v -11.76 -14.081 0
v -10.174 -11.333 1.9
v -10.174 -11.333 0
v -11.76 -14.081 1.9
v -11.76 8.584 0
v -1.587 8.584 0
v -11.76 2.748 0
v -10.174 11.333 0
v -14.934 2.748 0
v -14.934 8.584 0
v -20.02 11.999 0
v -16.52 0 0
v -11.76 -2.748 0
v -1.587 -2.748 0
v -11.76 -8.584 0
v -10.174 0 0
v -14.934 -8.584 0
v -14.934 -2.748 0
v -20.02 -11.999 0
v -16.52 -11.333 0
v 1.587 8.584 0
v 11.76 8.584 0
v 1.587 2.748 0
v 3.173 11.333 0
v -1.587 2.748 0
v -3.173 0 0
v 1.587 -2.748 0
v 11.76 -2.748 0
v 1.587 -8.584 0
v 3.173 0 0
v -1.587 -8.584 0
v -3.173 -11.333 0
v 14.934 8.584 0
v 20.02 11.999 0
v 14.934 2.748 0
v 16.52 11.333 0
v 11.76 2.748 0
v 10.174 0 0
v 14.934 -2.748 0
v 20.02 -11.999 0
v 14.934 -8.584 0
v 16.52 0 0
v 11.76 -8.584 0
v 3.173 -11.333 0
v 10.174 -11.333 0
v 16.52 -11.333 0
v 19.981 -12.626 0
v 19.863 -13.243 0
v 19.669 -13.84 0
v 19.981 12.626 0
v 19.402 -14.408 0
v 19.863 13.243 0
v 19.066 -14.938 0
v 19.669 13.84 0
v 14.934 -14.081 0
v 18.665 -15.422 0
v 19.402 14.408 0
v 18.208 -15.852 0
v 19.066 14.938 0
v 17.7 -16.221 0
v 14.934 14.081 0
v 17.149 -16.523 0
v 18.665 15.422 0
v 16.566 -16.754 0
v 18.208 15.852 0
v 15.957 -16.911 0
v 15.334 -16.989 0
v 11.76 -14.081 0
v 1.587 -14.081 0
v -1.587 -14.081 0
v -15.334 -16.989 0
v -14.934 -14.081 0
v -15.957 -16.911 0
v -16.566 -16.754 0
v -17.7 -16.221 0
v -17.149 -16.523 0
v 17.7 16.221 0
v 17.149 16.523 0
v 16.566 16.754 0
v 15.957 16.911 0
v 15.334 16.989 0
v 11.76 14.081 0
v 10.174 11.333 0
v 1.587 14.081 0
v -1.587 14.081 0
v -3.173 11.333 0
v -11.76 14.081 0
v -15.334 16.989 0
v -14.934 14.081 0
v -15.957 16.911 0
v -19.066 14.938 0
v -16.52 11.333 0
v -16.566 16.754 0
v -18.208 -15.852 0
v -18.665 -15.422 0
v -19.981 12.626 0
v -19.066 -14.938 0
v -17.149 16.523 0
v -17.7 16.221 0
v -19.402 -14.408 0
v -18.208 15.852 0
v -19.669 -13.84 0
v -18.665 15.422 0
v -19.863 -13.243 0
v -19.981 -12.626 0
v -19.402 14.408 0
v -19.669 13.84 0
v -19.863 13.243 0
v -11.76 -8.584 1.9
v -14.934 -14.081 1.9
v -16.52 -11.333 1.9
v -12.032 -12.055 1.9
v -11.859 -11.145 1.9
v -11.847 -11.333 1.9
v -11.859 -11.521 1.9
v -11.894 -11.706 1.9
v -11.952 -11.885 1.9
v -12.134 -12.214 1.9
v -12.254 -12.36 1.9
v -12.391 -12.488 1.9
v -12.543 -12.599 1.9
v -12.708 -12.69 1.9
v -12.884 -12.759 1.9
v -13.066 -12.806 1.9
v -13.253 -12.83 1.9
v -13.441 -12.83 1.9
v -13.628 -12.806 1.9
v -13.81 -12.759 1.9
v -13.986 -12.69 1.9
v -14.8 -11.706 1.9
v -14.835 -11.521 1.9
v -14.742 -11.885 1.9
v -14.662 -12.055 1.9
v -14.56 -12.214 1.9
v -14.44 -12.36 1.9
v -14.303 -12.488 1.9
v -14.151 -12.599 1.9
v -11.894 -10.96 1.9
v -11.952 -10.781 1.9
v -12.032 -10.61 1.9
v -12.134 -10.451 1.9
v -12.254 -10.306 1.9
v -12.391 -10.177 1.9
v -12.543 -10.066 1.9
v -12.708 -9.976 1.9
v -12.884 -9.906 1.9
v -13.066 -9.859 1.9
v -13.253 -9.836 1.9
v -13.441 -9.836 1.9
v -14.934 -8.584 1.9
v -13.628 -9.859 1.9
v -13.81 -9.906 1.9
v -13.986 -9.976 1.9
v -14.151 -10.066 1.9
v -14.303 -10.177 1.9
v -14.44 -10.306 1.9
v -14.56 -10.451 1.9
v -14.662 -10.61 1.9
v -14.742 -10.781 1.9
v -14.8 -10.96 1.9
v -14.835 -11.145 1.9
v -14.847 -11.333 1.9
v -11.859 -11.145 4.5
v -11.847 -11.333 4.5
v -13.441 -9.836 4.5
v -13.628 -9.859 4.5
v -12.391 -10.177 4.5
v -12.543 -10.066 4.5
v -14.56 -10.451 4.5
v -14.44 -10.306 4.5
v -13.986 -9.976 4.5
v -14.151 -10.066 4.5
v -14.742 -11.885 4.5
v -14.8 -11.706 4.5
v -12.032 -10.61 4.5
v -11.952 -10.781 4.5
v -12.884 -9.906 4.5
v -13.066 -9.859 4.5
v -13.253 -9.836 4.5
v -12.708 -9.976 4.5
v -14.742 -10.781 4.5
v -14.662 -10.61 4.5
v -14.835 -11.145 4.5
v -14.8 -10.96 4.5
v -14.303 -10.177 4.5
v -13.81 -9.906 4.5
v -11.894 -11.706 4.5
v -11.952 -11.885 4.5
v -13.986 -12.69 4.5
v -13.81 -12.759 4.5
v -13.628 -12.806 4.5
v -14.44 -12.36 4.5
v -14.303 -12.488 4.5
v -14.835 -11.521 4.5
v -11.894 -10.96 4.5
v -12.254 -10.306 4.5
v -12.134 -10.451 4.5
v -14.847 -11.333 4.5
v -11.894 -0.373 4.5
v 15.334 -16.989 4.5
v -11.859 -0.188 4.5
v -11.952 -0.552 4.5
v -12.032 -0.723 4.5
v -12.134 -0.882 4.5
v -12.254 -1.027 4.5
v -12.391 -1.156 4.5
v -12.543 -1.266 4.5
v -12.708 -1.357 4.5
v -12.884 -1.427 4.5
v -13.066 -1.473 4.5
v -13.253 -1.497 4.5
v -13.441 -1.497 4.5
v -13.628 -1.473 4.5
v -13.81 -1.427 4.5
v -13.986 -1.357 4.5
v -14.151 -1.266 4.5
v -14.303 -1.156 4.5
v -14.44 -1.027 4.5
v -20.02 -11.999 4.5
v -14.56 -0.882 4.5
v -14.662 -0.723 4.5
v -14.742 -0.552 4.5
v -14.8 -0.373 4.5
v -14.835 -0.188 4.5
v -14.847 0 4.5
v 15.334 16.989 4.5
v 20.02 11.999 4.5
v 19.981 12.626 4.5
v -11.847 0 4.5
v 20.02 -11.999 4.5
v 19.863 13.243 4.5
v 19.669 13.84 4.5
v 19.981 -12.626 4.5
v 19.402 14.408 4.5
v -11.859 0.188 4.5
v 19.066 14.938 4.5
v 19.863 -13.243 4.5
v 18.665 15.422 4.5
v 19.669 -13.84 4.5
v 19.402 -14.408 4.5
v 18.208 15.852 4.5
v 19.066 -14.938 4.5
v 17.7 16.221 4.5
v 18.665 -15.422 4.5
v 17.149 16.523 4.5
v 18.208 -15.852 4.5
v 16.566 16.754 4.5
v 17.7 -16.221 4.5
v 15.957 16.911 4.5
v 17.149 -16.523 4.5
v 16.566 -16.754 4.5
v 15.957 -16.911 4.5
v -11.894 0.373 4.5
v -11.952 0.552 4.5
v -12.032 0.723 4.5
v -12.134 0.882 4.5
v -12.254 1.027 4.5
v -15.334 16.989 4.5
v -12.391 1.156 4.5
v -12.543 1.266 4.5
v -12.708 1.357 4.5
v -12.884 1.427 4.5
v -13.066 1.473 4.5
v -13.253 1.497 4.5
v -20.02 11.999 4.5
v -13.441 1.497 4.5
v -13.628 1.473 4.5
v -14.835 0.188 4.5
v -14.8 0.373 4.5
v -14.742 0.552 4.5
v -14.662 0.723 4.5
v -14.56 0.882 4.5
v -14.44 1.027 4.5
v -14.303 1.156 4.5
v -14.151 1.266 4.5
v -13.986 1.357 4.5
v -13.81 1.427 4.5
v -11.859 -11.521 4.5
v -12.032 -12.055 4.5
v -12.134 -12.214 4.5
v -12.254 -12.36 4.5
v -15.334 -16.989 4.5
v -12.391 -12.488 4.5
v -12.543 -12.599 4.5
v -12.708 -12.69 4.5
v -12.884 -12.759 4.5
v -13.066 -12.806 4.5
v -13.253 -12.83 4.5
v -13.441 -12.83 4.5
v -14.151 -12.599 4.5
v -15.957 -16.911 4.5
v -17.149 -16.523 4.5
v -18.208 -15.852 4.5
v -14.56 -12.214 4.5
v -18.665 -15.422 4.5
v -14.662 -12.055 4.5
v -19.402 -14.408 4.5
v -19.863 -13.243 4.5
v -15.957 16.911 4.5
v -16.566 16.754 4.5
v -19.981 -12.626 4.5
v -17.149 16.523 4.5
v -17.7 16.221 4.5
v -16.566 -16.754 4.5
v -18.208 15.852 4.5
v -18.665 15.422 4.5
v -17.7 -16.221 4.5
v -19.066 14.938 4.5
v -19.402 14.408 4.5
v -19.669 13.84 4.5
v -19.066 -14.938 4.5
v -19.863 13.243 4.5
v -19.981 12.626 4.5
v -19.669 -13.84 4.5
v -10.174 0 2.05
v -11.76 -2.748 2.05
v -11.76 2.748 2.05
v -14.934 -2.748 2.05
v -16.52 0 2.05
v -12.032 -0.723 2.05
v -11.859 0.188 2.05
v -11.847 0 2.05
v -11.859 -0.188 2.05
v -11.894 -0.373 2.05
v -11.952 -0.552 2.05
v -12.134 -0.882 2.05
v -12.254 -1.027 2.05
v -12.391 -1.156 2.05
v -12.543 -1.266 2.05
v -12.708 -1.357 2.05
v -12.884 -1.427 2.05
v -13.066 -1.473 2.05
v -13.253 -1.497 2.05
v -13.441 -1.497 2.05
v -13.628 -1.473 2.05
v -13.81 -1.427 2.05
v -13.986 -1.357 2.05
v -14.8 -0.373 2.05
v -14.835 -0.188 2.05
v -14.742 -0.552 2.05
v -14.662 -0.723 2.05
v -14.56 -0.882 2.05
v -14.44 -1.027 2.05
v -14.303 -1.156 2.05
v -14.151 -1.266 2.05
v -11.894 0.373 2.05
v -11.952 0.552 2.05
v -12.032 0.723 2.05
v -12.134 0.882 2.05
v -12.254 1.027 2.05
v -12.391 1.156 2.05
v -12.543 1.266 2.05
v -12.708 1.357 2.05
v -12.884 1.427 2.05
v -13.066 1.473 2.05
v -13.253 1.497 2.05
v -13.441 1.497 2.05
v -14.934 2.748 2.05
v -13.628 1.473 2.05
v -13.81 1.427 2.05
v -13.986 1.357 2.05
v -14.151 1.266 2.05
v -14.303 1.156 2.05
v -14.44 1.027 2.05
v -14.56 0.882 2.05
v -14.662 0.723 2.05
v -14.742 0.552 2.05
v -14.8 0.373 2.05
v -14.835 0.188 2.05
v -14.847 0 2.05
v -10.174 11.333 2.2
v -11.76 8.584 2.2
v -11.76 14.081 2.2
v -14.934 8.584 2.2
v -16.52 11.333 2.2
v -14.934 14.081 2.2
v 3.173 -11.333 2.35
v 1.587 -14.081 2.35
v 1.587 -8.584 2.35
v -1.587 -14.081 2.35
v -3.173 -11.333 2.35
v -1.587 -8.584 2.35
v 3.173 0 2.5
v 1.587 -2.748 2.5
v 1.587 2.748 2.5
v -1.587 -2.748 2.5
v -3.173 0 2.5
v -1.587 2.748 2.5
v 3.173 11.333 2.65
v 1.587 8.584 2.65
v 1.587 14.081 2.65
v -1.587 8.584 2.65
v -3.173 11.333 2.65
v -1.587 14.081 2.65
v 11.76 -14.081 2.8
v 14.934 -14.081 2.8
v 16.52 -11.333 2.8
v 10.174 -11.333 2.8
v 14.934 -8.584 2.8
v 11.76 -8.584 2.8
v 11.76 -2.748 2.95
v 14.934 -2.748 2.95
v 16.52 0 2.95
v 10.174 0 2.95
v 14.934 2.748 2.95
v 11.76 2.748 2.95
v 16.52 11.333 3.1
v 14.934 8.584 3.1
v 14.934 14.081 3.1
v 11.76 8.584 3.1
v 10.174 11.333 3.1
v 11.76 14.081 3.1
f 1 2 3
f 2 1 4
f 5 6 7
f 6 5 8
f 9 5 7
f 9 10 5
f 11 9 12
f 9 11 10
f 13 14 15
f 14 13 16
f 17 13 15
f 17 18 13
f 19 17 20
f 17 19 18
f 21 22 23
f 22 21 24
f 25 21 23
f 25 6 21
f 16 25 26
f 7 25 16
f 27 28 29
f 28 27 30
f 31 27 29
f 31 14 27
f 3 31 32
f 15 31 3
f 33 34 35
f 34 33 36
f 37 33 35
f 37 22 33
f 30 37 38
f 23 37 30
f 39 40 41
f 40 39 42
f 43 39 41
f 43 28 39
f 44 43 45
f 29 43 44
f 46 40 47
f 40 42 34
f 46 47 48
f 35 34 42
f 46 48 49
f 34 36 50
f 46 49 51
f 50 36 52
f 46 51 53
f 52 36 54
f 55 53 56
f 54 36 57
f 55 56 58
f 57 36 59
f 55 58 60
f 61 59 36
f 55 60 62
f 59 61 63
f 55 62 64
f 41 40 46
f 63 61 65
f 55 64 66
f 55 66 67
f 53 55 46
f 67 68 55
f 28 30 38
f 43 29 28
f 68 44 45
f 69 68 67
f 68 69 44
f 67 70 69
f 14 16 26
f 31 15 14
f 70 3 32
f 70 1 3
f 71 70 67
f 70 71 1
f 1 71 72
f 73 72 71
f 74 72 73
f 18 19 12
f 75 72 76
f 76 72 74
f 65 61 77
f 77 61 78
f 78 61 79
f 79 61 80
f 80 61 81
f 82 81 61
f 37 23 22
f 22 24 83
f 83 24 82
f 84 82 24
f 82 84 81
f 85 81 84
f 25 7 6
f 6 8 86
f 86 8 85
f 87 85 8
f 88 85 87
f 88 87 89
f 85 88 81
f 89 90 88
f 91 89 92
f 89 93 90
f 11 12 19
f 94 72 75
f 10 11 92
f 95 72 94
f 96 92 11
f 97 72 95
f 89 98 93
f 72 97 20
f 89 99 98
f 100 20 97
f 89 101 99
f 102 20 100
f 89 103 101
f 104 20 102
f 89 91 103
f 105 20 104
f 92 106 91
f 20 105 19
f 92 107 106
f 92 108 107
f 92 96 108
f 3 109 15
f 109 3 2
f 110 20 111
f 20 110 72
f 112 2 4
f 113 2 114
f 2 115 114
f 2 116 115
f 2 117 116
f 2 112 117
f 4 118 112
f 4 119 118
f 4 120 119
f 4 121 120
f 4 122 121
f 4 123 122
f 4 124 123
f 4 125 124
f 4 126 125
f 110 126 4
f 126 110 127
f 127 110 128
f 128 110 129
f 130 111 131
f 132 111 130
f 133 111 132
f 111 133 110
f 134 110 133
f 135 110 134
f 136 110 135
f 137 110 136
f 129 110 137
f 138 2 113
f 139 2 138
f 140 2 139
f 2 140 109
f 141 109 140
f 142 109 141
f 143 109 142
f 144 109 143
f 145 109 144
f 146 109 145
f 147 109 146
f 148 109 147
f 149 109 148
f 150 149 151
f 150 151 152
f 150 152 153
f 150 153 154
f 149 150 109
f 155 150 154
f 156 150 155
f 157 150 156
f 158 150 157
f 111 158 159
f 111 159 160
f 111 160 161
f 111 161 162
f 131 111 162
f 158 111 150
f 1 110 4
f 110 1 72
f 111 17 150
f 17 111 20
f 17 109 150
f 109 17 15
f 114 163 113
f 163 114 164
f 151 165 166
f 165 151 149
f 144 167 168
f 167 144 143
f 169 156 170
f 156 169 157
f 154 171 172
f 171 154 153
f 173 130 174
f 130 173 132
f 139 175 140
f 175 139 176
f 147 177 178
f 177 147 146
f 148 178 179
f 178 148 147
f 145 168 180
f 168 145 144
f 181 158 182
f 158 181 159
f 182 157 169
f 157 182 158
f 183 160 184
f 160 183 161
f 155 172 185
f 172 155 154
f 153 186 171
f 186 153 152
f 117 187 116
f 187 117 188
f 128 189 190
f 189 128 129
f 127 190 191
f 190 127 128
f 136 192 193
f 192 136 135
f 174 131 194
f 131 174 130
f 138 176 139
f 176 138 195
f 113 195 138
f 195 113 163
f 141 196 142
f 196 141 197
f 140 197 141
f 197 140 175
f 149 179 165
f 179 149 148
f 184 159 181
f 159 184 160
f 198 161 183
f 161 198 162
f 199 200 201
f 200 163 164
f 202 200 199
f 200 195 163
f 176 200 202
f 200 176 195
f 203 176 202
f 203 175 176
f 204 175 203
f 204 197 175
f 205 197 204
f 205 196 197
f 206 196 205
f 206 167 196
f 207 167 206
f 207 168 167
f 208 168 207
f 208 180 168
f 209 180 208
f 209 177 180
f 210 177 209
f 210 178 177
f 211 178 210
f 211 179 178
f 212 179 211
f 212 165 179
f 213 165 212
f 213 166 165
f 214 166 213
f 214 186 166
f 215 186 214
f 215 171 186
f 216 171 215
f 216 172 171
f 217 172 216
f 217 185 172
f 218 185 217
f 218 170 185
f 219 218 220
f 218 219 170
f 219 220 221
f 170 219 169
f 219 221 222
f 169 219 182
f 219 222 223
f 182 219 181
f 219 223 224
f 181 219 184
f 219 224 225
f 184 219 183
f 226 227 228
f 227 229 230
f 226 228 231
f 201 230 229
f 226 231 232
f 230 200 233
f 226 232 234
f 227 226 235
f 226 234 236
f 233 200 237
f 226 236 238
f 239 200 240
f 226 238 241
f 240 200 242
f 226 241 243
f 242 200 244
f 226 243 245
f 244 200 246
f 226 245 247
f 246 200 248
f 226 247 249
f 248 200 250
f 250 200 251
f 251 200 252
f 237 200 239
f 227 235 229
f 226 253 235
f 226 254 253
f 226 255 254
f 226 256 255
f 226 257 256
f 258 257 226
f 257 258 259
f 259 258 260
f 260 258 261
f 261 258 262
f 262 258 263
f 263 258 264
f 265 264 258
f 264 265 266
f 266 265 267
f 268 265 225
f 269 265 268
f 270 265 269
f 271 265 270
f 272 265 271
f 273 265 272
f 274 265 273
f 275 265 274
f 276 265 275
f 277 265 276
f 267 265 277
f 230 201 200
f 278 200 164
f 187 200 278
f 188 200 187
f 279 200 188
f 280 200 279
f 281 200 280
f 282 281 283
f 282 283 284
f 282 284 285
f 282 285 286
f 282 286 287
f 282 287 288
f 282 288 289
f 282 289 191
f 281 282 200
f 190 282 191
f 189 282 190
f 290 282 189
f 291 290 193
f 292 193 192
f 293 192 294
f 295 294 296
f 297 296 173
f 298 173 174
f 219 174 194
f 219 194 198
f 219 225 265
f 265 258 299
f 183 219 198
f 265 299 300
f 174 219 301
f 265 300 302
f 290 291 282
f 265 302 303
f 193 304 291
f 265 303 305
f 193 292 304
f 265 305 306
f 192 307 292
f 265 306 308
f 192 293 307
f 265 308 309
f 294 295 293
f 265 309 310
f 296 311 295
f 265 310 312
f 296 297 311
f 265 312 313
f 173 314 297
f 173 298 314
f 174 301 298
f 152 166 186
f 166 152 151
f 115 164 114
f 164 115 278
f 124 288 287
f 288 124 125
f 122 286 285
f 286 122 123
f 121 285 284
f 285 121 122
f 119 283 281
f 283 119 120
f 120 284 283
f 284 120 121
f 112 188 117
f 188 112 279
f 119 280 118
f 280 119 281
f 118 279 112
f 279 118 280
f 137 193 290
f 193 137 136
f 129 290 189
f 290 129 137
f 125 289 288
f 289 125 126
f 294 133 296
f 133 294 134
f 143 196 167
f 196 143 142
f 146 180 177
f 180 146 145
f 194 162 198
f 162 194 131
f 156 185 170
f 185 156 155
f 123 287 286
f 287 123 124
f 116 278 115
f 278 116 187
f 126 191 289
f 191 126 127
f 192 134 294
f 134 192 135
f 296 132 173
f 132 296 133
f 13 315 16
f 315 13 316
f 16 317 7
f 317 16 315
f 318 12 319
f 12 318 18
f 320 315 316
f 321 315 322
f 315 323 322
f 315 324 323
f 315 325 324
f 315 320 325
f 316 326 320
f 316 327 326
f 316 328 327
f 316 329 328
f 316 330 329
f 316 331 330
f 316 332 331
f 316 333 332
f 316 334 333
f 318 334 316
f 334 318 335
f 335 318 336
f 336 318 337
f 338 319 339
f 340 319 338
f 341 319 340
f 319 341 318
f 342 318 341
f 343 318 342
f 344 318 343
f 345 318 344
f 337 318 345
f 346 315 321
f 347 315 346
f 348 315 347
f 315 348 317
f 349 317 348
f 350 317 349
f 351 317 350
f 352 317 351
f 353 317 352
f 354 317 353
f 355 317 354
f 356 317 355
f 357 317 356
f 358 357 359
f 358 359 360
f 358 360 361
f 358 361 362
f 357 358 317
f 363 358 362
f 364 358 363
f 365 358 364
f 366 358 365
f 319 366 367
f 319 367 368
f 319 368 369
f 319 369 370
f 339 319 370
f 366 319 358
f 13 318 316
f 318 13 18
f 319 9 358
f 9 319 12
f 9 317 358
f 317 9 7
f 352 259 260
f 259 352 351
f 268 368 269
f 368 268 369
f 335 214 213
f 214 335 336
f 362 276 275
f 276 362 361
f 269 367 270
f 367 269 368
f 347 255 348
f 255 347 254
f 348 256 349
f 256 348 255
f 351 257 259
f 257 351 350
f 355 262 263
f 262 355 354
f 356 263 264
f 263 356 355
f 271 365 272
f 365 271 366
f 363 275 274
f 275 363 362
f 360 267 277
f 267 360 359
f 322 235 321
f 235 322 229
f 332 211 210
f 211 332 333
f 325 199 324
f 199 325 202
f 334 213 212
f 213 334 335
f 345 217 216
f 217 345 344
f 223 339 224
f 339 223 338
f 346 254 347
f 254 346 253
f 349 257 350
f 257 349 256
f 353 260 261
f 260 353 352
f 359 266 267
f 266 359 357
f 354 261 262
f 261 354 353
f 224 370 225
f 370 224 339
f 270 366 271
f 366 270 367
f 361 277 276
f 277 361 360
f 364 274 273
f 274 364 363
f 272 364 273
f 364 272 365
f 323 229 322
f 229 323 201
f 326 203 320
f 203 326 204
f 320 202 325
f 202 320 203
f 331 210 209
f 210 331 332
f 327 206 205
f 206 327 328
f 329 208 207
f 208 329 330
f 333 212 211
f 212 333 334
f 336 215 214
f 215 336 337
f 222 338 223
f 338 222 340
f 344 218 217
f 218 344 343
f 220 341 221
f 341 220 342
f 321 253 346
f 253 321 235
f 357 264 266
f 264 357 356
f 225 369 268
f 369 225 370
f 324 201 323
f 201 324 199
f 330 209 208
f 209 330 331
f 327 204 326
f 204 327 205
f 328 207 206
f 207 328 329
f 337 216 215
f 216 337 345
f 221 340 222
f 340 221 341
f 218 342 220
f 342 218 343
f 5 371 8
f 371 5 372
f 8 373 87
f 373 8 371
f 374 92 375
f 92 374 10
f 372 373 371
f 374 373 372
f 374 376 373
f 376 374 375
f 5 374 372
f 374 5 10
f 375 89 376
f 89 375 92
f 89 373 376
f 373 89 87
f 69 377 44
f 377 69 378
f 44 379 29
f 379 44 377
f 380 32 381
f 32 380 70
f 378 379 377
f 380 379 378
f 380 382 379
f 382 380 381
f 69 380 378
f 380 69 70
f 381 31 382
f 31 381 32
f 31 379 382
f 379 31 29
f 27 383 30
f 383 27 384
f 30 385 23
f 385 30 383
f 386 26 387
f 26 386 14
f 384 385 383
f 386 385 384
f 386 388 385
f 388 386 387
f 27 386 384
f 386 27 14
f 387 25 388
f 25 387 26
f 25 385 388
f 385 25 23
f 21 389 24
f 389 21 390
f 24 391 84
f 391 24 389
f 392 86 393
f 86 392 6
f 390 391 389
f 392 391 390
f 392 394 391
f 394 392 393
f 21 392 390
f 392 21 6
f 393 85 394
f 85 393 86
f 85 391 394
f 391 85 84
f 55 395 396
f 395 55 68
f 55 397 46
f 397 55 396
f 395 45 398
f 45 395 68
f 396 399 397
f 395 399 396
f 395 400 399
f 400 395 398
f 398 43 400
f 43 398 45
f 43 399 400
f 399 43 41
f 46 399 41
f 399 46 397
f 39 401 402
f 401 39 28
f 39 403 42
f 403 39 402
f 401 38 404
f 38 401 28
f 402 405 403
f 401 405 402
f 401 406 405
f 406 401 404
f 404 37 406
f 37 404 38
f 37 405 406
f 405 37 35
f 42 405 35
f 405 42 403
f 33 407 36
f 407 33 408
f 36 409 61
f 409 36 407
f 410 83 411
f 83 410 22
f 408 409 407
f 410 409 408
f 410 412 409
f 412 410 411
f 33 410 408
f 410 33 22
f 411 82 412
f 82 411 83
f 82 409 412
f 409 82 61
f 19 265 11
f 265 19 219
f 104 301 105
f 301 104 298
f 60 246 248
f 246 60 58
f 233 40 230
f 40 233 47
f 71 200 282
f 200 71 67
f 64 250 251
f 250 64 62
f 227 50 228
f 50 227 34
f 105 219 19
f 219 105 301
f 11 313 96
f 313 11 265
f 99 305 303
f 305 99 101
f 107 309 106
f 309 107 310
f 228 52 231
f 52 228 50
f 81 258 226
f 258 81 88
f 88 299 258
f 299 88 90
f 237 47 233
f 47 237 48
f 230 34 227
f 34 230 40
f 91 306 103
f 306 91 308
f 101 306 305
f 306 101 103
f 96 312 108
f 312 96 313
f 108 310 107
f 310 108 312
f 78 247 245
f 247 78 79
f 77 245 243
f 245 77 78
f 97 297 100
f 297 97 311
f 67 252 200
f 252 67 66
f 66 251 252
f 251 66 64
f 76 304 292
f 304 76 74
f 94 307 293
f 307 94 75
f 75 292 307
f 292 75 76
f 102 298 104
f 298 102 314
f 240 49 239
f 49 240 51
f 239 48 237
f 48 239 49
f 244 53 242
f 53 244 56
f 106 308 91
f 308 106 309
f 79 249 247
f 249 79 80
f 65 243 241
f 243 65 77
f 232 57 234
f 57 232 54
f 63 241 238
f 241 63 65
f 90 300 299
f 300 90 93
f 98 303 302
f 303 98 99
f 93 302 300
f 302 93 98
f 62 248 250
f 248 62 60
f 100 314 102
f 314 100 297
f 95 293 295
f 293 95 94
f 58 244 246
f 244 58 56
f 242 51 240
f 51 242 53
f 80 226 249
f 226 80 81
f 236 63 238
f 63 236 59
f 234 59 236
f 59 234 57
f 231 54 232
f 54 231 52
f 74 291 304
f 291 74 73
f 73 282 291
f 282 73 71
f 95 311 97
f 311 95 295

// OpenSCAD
$fn = 50;


difference() {
	union() {
		translate(v = [0, 0, 0]) {
			rotate(a = [0, 0, 0]) {
				hull() {
					translate(v = [-15.0205000000, 11.9991334489, 0]) {
						rotate(a = [0, 0, 0]) {
							translate(v = [0, 0, 0]) {
								rotate(a = [0, 0, 0]) {
									cylinder(h = 4.5000000000, r = 5);
								}
							}
						}
					}
					translate(v = [15.0205000000, 11.9991334489, 0]) {
						rotate(a = [0, 0, 0]) {
							translate(v = [0, 0, 0]) {
								rotate(a = [0, 0, 0]) {
									cylinder(h = 4.5000000000, r = 5);
								}
							}
						}
					}
					translate(v = [-15.0205000000, -11.9991334489, 0]) {
						rotate(a = [0, 0, 0]) {
							translate(v = [0, 0, 0]) {
								rotate(a = [0, 0, 0]) {
									cylinder(h = 4.5000000000, r = 5);
								}
							}
						}
					}
					translate(v = [15.0205000000, -11.9991334489, 0]) {
						rotate(a = [0, 0, 0]) {
							translate(v = [0, 0, 0]) {
								rotate(a = [0, 0, 0]) {
									cylinder(h = 4.5000000000, r = 5);
								}
							}
						}
					}
				}
			}
		}
	}
	union() {
		translate(v = [-13.3470000000, -11.3327556326, 0]) {
			rotate(a = [0, 0, 0]) {
				#translate(v = [0, 0, 0]) {
					rotate(a = [0, 0, 0]) {
						linear_extrude(height = 1.9000000000) {
							polygon(points = [[3.1735000000, 0.0000000000], [1.5867500000, 2.7483316189], [-1.5867500000, 2.7483316189], [-3.1735000000, 0.0000000000], [-1.5867500000, -2.7483316189], [1.5867500000, -2.7483316189]]);
						}
					}
				}
			}
		}
		translate(v = [-13.3470000000, -11.3327556326, 0]) {
			rotate(a = [0, 0, 0]) {
				cylinder(h = 4.5000000000, r = 1.5000000000);
			}
		}
		translate(v = [-13.3470000000, -0.0000000000, 0]) {
			rotate(a = [0, 0, 0]) {
				#translate(v = [0, 0, 0]) {
					rotate(a = [0, 0, 0]) {
						linear_extrude(height = 2.0500000000) {
							polygon(points = [[3.1735000000, 0.0000000000], [1.5867500000, 2.7483316189], [-1.5867500000, 2.7483316189], [-3.1735000000, 0.0000000000], [-1.5867500000, -2.7483316189], [1.5867500000, -2.7483316189]]);
						}
					}
				}
			}
		}
		translate(v = [-13.3470000000, -0.0000000000, 0]) {
			rotate(a = [0, 0, 0]) {
				cylinder(h = 4.5000000000, r = 1.5000000000);
			}
		}
		translate(v = [-13.3470000000, 11.3327556326, 0]) {
			rotate(a = [0, 0, 0]) {
				#translate(v = [0, 0, 0]) {
					rotate(a = [0, 0, 0]) {
						linear_extrude(height = 2.2000000000) {
							polygon(points = [[3.1735000000, 0.0000000000], [1.5867500000, 2.7483316189], [-1.5867500000, 2.7483316189], [-3.1735000000, 0.0000000000], [-1.5867500000, -2.7483316189], [1.5867500000, -2.7483316189]]);
						}
					}
				}
			}
		}
		translate(v = [0.0000000000, -11.3327556326, 0]) {
			rotate(a = [0, 0, 0]) {
				#translate(v = [0, 0, 0]) {
					rotate(a = [0, 0, 0]) {
						linear_extrude(height = 2.3500000000) {
							polygon(points = [[3.1735000000, 0.0000000000], [1.5867500000, 2.7483316189], [-1.5867500000, 2.7483316189], [-3.1735000000, 0.0000000000], [-1.5867500000, -2.7483316189], [1.5867500000, -2.7483316189]]);
						}
					}
				}
			}
		}
		translate(v = [0.0000000000, -0.0000000000, 0]) {
			rotate(a = [0, 0, 0]) {
				#translate(v = [0, 0, 0]) {
					rotate(a = [0, 0, 0]) {
						linear_extrude(height = 2.5000000000) {
							polygon(points = [[3.1735000000, 0.0000000000], [1.5867500000, 2.7483316189], [-1.5867500000, 2.7483316189], [-3.1735000000, 0.0000000000], [-1.5867500000, -2.7483316189], [1.5867500000, -2.7483316189]]);
						}
					}
				}
			}
		}
		translate(v = [0.0000000000, 11.3327556326, 0]) {
			rotate(a = [0, 0, 0]) {
				#translate(v = [0, 0, 0]) {
					rotate(a = [0, 0, 0]) {
						linear_extrude(height = 2.6500000000) {
							polygon(points = [[3.1735000000, 0.0000000000], [1.5867500000, 2.7483316189], [-1.5867500000, 2.7483316189], [-3.1735000000, 0.0000000000], [-1.5867500000, -2.7483316189], [1.5867500000, -2.7483316189]]);
						}
					}
				}
			}
		}
		translate(v = [13.3470000000, -11.3327556326, 0]) {
			rotate(a = [0, 0, 0]) {
				#translate(v = [0, 0, 0]) {
					rotate(a = [0, 0, 0]) {
						linear_extrude(height = 2.8000000000) {
							polygon(points = [[3.1735000000, 0.0000000000], [1.5867500000, 2.7483316189], [-1.5867500000, 2.7483316189], [-3.1735000000, 0.0000000000], [-1.5867500000, -2.7483316189], [1.5867500000, -2.7483316189]]);
						}
					}
				}
			}
		}
		translate(v = [13.3470000000, -0.0000000000, 0]) {
			rotate(a = [0, 0, 0]) {
				#translate(v = [0, 0, 0]) {
					rotate(a = [0, 0, 0]) {
						linear_extrude(height = 2.9500000000) {
							polygon(points = [[3.1735000000, 0.0000000000], [1.5867500000, 2.7483316189], [-1.5867500000, 2.7483316189], [-3.1735000000, 0.0000000000], [-1.5867500000, -2.7483316189], [1.5867500000, -2.7483316189]]);
						}
					}
				}
			}
		}
		translate(v = [13.3470000000, 11.3327556326, 0]) {
			rotate(a = [0, 0, 0]) {
				#translate(v = [0, 0, 0]) {
					rotate(a = [0, 0, 0]) {
						linear_extrude(height = 3.1000000000) {
							polygon(points = [[3.1735000000, 0.0000000000], [1.5867500000, 2.7483316189], [-1.5867500000, 2.7483316189], [-3.1735000000, 0.0000000000], [-1.5867500000, -2.7483316189], [1.5867500000, -2.7483316189]]);
						}
					}
				}
			}
		}
	}
}
